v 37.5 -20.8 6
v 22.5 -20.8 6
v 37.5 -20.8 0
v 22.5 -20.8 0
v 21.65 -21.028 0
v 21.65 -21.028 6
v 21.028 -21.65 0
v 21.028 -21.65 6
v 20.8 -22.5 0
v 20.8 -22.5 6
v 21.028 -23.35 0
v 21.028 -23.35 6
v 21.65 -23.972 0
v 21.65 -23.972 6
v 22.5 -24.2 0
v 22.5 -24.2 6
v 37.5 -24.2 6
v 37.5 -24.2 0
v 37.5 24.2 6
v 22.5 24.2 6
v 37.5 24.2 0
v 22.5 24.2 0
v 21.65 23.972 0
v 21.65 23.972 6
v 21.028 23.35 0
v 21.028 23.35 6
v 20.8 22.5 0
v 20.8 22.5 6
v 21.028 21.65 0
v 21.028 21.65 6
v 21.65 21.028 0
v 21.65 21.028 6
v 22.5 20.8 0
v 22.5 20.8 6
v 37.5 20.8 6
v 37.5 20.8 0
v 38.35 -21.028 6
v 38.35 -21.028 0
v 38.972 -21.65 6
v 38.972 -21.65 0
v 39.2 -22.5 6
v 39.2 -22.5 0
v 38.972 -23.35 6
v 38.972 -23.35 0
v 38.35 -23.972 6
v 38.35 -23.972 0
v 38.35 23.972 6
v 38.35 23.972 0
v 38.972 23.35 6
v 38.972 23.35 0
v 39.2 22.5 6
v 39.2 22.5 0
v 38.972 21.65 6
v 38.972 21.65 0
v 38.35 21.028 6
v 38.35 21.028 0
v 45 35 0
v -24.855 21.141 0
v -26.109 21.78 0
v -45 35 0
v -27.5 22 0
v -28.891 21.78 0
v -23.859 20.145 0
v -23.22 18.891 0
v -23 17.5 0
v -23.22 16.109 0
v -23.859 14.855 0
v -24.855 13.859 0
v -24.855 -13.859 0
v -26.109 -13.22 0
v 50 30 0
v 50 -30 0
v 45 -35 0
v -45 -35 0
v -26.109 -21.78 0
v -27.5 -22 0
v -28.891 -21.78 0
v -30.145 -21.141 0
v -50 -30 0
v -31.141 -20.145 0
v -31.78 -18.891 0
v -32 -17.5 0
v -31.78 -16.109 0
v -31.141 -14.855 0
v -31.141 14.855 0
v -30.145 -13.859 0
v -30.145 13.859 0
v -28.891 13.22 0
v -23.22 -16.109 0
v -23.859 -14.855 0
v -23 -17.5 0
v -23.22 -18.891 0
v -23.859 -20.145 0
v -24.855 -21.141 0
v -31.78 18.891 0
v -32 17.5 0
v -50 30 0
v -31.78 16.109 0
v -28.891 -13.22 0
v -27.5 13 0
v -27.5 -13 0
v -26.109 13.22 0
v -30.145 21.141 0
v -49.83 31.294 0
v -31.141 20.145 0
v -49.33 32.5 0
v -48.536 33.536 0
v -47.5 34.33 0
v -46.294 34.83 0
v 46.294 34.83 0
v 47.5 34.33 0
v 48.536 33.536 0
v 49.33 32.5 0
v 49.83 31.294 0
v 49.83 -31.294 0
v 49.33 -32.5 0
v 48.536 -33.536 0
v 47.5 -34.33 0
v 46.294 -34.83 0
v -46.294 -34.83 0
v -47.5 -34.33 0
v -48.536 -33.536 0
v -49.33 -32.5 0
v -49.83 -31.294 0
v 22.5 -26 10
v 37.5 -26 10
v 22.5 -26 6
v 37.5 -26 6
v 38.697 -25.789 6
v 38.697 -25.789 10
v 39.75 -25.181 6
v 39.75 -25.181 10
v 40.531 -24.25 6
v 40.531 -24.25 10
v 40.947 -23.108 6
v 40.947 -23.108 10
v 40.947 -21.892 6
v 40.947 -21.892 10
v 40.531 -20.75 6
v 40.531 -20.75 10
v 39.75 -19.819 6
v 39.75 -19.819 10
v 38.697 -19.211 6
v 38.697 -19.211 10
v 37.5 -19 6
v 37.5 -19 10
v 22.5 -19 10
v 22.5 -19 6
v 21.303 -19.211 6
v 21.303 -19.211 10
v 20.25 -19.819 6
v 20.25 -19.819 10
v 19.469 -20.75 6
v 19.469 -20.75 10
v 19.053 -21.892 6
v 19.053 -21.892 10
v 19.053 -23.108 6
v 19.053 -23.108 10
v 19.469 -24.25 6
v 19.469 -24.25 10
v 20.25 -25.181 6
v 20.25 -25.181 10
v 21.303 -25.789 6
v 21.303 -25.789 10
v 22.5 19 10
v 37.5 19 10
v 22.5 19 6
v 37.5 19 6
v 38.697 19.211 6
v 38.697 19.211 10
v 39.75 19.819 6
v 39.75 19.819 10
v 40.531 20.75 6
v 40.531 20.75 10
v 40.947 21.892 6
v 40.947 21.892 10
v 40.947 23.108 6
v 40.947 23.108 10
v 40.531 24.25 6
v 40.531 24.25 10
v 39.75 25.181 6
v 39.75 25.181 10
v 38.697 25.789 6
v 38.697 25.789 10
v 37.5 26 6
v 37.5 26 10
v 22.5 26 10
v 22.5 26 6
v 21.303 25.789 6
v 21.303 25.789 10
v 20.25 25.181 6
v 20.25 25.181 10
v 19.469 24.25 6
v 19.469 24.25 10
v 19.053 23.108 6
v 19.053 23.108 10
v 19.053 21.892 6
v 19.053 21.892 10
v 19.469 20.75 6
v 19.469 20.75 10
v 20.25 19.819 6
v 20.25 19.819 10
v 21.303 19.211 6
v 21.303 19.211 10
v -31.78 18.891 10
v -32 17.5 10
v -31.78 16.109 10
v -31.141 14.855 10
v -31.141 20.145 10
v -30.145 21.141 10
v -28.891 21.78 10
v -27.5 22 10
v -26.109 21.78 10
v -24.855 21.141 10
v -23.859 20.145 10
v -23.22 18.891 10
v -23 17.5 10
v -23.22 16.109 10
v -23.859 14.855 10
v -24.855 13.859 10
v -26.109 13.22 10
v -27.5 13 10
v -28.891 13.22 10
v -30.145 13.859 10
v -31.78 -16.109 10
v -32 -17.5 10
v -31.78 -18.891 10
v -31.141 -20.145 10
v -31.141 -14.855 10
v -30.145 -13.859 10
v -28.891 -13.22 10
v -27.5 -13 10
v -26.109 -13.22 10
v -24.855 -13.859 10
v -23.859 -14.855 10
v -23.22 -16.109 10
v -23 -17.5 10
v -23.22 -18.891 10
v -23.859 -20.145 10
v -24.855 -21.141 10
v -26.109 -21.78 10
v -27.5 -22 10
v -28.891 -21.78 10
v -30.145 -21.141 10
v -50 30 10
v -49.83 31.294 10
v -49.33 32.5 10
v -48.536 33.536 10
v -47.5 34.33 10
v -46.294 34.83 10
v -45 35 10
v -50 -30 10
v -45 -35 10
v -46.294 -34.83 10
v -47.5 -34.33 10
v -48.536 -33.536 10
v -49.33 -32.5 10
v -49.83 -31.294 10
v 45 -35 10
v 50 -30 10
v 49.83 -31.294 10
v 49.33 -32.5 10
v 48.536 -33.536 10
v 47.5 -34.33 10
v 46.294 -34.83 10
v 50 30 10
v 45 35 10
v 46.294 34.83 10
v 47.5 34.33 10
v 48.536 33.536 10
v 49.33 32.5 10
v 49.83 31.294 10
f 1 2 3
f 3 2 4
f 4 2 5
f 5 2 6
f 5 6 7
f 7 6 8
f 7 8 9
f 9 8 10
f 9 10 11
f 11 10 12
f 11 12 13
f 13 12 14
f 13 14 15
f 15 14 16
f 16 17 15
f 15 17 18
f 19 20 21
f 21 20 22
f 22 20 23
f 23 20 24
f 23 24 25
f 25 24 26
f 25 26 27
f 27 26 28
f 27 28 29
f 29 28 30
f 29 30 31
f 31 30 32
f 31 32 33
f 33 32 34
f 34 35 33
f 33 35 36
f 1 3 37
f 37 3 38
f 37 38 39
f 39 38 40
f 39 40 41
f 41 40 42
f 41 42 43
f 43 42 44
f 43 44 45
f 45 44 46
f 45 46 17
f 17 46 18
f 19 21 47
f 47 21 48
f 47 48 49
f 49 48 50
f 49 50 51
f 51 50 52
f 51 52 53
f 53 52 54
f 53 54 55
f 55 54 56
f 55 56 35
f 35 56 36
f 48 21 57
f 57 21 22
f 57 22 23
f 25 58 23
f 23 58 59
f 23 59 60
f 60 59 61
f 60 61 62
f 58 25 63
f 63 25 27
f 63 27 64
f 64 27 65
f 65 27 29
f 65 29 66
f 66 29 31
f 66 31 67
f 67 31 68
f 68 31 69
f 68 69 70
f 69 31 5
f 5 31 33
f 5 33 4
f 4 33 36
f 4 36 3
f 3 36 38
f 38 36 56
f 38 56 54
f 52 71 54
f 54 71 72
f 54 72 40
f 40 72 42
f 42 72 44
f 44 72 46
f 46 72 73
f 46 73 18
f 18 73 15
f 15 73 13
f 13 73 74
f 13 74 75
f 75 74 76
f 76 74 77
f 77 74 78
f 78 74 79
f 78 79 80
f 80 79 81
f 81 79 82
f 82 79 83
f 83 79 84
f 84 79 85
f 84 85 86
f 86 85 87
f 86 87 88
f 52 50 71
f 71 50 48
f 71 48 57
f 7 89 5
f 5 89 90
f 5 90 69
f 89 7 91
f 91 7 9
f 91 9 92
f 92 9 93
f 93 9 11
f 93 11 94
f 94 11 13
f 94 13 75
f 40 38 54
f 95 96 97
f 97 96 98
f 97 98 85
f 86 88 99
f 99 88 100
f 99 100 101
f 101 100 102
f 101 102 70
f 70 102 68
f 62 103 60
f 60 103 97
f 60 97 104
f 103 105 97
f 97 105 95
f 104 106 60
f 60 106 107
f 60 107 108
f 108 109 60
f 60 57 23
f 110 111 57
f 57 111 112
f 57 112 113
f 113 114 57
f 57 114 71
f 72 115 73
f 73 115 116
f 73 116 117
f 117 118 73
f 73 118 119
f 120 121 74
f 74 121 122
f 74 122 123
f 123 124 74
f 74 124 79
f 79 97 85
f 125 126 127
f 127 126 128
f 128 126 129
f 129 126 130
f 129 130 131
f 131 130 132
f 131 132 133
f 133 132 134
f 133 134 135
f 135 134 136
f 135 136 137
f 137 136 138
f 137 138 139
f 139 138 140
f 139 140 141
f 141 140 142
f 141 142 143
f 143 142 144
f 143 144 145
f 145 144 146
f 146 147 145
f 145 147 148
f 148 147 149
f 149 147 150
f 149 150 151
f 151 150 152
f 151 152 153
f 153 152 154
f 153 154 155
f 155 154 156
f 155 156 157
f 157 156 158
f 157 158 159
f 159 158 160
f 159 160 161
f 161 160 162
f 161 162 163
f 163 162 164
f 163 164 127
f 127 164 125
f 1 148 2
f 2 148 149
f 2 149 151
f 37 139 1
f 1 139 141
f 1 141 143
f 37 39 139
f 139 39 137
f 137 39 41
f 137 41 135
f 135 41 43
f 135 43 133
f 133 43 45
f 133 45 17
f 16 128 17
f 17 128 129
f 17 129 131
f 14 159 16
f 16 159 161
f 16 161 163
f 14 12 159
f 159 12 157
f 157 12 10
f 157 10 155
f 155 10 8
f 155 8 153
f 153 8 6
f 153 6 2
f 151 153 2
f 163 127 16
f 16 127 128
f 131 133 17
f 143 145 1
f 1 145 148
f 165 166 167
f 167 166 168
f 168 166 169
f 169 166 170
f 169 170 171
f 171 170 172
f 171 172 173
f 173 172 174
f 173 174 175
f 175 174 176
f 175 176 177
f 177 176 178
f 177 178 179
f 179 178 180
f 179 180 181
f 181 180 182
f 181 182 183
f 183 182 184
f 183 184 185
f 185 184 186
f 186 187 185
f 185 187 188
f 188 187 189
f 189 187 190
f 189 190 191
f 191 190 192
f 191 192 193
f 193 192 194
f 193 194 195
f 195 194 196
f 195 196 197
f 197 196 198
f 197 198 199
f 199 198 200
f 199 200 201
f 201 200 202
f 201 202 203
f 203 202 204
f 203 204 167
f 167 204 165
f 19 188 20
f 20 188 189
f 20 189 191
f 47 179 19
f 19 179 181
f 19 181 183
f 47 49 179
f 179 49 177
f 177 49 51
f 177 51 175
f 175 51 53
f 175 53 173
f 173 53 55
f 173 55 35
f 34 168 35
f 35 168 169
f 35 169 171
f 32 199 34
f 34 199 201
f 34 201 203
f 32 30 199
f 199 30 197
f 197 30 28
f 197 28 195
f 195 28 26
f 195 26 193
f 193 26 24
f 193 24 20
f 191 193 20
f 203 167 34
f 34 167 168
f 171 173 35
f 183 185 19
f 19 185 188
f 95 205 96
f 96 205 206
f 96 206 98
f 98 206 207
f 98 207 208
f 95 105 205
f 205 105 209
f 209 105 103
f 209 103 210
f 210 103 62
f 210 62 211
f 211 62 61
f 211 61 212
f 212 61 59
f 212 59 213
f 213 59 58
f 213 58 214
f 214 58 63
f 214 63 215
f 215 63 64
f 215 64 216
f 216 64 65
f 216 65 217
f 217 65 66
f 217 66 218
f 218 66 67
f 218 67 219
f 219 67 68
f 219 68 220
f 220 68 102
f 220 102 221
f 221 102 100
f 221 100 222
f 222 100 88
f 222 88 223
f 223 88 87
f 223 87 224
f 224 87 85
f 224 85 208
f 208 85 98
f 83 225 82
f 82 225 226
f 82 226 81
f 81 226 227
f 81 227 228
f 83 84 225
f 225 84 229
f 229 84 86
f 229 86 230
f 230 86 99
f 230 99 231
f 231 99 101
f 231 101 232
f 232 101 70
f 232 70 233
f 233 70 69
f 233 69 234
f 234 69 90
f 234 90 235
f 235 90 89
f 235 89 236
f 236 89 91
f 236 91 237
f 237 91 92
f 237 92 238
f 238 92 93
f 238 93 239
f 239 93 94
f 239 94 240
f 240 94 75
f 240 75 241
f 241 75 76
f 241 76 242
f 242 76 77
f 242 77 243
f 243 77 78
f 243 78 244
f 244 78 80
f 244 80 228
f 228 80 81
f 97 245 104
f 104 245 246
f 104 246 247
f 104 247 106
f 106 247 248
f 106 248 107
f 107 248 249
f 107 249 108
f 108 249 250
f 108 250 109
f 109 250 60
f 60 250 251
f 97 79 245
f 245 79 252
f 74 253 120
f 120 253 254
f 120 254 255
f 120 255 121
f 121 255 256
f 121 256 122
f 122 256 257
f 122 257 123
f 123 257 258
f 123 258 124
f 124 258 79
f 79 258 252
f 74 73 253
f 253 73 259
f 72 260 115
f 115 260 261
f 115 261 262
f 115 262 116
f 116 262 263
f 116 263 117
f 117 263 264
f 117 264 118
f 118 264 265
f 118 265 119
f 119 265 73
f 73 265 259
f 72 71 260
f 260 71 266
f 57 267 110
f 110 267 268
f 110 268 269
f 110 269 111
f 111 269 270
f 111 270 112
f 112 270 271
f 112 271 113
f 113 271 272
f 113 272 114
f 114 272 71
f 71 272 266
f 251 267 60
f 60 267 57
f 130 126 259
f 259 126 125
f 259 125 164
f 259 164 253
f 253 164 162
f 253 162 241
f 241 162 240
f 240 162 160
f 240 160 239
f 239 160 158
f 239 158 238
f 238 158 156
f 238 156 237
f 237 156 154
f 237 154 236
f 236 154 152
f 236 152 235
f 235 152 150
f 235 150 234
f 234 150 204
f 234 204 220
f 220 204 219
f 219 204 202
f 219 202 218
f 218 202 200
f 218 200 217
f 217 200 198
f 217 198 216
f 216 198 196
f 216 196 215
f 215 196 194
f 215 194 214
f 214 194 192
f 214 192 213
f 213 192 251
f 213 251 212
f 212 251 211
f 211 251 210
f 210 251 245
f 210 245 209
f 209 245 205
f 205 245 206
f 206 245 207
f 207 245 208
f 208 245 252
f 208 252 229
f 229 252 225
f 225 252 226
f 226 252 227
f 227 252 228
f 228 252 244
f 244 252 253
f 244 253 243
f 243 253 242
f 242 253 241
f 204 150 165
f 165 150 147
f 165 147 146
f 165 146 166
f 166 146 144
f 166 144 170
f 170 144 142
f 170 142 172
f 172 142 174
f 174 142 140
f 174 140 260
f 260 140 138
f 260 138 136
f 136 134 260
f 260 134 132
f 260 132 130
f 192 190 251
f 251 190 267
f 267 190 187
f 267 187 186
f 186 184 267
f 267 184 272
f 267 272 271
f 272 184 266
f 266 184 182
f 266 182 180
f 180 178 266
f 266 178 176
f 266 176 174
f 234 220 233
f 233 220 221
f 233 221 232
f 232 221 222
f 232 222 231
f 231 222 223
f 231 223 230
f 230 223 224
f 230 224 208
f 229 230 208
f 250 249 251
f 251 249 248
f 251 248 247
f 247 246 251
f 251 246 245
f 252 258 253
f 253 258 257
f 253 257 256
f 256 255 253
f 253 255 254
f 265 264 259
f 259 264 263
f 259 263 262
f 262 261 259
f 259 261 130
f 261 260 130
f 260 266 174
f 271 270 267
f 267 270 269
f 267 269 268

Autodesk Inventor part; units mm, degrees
ref_plane "YZ Plane" through (0, 0, 0) normal (1, 0, 0) x (0, 1, 0)
ref_plane "XZ Plane" through (0, 0, 0) normal (0, 1, 0) x (-1, 0, 0)
ref_plane "XY Plane" through (0, 0, 0) normal (0, 0, 1) x (1, 0, 0)
sketch "Náčrt1" plane through (0, 0, 0) normal (0, 0, 1) x (1, 0, 0)
  line L0 (-70, 0) -> (70, 0) projected
  line L1 (0, -49) -> (0, 49) projected
  line L2 (-50, 35) -> (50, 35)
  line L3 (50, 35) -> (50, -35)
  line L4 (50, -35) -> (-50, -35)
  line L5 (-50, -35) -> (-50, 35)
  point P0 (0, 0)
  point P1 (0, 35)
  point P2 (-50, 0)
  dimension "d0" = 70
  dimension "d1" = 100
extrude "Vysunutí1" add sketch "Náčrt1" along normal blind 10
fillet "Zaoblení1" radius 5 4 edges at (50, 35, 5) (50, -35, 5) (-50, -35, 5) (-50, 35, 5)
sketch "Náčrt2" plane through (0, 0, 10) normal (0, 0, 1) x (1, 0, 0)
  line L0 (-50, 30) -> (-50, -30) projected
  point P0 (0, 0)
  point P1 (-27.5, 17.5)
  point P2 (-27.5, -17.5)
  point P3 (-50, 0)
  dimension "d5" = 22.5
  dimension "d6" = 22.5
  dimension "d7" = 35
  dimension "d8" = 17.5
hole "Díra1" at (-27.5, 17.5, 10) at (-27.5, -17.5, 10) direction (0, 0, -1) diameter 9 end through all
sketch "Náčrt3" plane through (0, 0, 10) normal (0, 0, 1) x (1, 0, 0)
  line L0 (50, -30) -> (50, 30) projected
  line L1 (37.5, 22.5) -> (22.5, 22.5) construction
  line L2 (37.5, 26) -> (22.5, 26)
  line L3 (22.5, 19) -> (37.5, 19)
  arc A0 (37.5, 19) -> (37.5, 26) centre (37.5, 22.5) ccw
  arc A1 (22.5, 26) -> (22.5, 19) centre (22.5, 22.5) ccw
  line L4 (37.5, -22.5) -> (22.5, -22.5) construction
  line L5 (37.5, -19) -> (22.5, -19)
  line L6 (22.5, -26) -> (37.5, -26)
  arc A2 (37.5, -26) -> (37.5, -19) centre (37.5, -22.5) ccw
  arc A3 (22.5, -19) -> (22.5, -26) centre (22.5, -22.5) ccw
  point P0 (0, 0)
  point P1 (50, 0)
  point P2 (30, 22.5)
  point P3 (30, -22.5)
  dimension "d16" = 45
  dimension "d17" = 22.5
  dimension "d18" = 12.5
  dimension "d19" = 12.5
  dimension "d20" = 15
  dimension "d21" = 7
  dimension "d22" = 15
  dimension "d23" = 7
hole "Díra2" at (37.5, 22.5, 10) at (37.5, -22.5, 10) direction (0, 0, -1) diameter 3.4 end through all clearance for "Šroub se zápustnou hlavou ISO 2009/7046" size "M3" standard "ISO"
extrude "Vysunutí2" cut sketch "Náčrt3" against normal blind 4
sketch "Náčrt4" plane through (0, 0, 10) normal (0, 0, 1) x (1, 0, 0)
  circle A0 centre (37.5, 22.5) radius 1.7 projected
  arc A1 (22.5, 26) -> (22.5, 19) centre (22.5, 22.5) ccw projected
  line L0 (37.5, 22.5) -> (22.5, 22.5) construction
  line L1 (37.5, 20.8) -> (22.5, 20.8)
  line L2 (22.5, 24.2) -> (37.5, 24.2)
  arc A2 (37.5, 20.8) -> (37.5, 24.2) centre (37.5, 22.5) ccw
  arc A3 (22.5, 24.2) -> (22.5, 20.8) centre (22.5, 22.5) ccw
  circle A4 centre (37.5, -22.5) radius 1.7 projected
  line L3 (37.5, -22.5) -> (22.5, -22.5) construction
  line L4 (37.5, -24.2) -> (22.5, -24.2)
  line L5 (22.5, -20.8) -> (37.5, -20.8)
  arc A5 (37.5, -24.2) -> (37.5, -20.8) centre (37.5, -22.5) ccw
  arc A6 (22.5, -20.8) -> (22.5, -24.2) centre (22.5, -22.5) ccw
  arc A7 (22.5, -19) -> (22.5, -26) centre (22.5, -22.5) ccw projected
  point P0 (0, 0)
  point P1 (30, 22.5)
  point P2 (30, -22.5)
extrude "Vysunutí3" cut sketch "Náčrt4" against normal through all
properties part number "drzal_kamery_real_sense"
